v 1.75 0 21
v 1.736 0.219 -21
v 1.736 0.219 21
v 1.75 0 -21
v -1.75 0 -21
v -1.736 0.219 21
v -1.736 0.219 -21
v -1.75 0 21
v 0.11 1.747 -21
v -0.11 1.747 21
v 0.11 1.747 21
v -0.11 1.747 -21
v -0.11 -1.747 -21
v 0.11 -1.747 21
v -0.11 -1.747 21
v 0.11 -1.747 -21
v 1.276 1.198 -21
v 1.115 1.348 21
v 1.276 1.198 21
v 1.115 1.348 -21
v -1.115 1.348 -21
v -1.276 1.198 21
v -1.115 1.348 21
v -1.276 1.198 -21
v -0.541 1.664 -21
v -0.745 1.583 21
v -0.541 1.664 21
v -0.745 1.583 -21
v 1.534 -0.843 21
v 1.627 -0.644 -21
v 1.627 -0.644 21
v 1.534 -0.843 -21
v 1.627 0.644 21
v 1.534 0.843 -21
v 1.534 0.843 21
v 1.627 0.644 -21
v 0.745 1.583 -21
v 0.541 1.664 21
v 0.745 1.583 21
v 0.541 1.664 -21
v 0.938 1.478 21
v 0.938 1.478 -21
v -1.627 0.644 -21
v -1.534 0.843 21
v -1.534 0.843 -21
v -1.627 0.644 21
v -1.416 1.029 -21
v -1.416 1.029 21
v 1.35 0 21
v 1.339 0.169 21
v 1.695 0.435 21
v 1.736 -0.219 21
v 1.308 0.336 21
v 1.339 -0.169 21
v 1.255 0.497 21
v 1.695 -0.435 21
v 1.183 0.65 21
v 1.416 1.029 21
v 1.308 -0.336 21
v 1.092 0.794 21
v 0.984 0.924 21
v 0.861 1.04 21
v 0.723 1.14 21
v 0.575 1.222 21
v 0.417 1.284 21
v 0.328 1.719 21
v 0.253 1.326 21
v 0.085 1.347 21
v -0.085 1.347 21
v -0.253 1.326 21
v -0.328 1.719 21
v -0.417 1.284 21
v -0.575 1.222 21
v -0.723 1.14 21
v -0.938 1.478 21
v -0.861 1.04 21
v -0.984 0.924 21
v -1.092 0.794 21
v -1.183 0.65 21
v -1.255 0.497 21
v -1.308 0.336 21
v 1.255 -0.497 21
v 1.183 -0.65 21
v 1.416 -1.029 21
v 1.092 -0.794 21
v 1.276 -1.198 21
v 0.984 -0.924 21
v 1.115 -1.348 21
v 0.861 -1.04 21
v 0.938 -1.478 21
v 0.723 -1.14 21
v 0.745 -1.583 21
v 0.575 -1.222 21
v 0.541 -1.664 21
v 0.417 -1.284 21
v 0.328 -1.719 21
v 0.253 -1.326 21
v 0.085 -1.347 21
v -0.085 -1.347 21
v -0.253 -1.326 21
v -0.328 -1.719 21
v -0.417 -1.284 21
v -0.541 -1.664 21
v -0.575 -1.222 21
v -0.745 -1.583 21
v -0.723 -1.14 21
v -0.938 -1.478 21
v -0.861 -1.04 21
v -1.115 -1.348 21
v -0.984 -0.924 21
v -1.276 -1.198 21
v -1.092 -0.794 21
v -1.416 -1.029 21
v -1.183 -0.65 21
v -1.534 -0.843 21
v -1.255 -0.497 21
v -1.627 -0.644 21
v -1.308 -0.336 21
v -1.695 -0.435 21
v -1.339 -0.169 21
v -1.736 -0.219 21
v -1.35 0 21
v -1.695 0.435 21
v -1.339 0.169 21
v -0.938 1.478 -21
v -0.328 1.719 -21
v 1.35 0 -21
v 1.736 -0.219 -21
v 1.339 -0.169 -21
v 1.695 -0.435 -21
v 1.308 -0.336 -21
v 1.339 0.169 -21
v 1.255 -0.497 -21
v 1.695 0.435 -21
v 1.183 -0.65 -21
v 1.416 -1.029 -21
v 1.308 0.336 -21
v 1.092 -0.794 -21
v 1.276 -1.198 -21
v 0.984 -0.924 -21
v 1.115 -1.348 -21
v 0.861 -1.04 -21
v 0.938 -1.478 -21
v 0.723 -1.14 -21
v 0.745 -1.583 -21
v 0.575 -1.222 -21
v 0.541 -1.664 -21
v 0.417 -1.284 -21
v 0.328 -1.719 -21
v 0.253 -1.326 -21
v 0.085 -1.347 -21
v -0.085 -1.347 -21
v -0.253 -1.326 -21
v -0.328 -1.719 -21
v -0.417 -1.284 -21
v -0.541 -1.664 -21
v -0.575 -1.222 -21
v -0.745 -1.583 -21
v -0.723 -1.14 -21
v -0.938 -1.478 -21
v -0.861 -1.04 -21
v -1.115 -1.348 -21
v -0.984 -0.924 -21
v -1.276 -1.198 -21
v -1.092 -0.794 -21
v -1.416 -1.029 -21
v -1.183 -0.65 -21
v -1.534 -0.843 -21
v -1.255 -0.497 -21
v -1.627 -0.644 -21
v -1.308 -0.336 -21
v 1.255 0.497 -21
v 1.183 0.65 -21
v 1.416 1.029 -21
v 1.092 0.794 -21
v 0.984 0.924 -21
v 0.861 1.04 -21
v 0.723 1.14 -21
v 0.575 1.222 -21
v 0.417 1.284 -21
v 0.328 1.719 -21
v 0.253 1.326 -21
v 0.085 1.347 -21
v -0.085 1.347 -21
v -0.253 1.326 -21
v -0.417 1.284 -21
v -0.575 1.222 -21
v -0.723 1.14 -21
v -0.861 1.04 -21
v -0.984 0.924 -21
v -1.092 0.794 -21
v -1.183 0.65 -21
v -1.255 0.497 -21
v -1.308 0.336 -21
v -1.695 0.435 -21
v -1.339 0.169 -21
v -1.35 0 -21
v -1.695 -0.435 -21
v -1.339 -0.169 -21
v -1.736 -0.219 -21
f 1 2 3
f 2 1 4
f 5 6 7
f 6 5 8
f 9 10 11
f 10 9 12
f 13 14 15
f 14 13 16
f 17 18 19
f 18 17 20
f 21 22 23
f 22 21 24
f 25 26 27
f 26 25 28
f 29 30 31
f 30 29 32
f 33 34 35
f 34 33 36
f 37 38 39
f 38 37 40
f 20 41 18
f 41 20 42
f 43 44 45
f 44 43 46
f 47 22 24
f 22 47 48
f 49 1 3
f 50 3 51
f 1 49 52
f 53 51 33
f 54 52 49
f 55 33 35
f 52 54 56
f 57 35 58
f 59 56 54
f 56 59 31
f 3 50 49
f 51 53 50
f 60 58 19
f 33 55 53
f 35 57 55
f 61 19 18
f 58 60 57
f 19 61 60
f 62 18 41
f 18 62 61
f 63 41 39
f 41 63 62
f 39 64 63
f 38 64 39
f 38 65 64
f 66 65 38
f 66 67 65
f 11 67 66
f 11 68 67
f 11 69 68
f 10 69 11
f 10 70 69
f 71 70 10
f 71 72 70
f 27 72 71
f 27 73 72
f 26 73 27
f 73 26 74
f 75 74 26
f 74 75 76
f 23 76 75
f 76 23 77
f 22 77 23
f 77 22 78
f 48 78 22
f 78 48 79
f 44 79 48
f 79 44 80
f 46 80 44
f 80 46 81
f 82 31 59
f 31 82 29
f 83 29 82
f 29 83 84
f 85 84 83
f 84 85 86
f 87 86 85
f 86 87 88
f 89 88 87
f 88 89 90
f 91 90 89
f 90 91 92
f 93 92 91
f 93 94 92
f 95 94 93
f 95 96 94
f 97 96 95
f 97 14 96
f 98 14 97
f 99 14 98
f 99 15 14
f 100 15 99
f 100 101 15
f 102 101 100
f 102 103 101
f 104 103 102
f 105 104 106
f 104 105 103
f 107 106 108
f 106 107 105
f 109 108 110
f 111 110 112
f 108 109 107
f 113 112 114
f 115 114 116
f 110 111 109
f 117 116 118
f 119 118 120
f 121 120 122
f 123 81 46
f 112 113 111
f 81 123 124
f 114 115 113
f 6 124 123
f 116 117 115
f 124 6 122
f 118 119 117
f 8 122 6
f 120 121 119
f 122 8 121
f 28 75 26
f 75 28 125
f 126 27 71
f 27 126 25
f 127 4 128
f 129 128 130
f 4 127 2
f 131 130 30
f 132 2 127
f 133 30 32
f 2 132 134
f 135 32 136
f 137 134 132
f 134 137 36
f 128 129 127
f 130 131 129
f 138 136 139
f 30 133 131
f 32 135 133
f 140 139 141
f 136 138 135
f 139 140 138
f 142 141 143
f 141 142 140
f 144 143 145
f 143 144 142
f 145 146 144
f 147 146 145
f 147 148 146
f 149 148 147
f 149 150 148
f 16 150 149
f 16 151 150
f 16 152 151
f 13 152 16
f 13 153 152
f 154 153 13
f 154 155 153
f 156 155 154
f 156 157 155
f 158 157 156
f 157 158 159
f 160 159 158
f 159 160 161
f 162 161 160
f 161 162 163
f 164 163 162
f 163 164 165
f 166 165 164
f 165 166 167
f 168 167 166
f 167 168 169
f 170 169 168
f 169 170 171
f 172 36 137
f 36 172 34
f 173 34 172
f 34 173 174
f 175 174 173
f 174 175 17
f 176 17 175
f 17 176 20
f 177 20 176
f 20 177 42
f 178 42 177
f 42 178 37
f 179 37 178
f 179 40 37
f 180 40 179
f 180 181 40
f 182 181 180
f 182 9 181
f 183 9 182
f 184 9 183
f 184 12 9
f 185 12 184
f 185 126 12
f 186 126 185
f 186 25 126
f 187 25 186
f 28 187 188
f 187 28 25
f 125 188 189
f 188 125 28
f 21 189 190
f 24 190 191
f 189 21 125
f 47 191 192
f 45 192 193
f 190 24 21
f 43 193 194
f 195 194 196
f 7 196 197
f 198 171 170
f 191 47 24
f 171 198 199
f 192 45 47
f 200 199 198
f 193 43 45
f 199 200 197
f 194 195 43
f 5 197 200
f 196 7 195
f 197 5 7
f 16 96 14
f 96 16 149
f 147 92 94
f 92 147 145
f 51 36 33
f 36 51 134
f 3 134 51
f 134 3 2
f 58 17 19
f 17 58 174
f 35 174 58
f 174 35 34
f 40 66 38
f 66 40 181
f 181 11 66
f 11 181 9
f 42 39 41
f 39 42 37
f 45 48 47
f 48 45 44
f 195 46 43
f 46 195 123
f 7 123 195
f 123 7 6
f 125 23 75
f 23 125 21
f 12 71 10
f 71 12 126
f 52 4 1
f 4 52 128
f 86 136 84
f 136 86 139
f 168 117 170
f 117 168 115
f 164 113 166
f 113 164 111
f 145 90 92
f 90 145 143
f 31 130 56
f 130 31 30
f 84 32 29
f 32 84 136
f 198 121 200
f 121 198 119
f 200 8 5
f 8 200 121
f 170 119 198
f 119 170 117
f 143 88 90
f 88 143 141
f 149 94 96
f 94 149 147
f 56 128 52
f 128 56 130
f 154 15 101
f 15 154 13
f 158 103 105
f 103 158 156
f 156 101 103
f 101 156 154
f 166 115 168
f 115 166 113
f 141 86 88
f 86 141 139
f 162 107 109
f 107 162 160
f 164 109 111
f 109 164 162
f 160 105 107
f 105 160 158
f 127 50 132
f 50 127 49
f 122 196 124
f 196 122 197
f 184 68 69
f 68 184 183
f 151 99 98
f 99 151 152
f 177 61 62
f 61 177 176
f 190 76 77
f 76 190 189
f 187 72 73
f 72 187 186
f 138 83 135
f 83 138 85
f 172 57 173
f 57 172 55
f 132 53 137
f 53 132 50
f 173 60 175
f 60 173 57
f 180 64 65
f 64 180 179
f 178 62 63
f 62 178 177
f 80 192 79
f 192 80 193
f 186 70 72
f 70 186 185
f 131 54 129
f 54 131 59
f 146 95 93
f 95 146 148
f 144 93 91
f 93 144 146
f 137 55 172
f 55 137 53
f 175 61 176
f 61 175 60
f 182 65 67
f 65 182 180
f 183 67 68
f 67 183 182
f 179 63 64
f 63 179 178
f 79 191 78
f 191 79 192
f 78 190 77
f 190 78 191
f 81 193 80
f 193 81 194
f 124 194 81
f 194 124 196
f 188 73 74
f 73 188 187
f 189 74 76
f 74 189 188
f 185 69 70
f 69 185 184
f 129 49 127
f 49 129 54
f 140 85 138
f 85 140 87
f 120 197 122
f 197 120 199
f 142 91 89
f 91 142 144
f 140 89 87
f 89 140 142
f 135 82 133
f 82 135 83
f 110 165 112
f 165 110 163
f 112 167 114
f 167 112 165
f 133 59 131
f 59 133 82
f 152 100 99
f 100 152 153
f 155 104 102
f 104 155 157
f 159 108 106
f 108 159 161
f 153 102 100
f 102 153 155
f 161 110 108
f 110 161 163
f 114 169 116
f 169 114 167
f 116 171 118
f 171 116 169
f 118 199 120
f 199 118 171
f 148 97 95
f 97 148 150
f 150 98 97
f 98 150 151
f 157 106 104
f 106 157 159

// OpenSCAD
$fn = 50;


difference() {
	union() {
		translate(v = [0, 0, -21.0000000000]) {
			cylinder(h = 42, r = 1.7500000000);
		}
	}
	union() {
		translate(v = [0, 0, -100.0000000000]) {
			cylinder(h = 200, r = 1.3500000000);
		}
	}
}
